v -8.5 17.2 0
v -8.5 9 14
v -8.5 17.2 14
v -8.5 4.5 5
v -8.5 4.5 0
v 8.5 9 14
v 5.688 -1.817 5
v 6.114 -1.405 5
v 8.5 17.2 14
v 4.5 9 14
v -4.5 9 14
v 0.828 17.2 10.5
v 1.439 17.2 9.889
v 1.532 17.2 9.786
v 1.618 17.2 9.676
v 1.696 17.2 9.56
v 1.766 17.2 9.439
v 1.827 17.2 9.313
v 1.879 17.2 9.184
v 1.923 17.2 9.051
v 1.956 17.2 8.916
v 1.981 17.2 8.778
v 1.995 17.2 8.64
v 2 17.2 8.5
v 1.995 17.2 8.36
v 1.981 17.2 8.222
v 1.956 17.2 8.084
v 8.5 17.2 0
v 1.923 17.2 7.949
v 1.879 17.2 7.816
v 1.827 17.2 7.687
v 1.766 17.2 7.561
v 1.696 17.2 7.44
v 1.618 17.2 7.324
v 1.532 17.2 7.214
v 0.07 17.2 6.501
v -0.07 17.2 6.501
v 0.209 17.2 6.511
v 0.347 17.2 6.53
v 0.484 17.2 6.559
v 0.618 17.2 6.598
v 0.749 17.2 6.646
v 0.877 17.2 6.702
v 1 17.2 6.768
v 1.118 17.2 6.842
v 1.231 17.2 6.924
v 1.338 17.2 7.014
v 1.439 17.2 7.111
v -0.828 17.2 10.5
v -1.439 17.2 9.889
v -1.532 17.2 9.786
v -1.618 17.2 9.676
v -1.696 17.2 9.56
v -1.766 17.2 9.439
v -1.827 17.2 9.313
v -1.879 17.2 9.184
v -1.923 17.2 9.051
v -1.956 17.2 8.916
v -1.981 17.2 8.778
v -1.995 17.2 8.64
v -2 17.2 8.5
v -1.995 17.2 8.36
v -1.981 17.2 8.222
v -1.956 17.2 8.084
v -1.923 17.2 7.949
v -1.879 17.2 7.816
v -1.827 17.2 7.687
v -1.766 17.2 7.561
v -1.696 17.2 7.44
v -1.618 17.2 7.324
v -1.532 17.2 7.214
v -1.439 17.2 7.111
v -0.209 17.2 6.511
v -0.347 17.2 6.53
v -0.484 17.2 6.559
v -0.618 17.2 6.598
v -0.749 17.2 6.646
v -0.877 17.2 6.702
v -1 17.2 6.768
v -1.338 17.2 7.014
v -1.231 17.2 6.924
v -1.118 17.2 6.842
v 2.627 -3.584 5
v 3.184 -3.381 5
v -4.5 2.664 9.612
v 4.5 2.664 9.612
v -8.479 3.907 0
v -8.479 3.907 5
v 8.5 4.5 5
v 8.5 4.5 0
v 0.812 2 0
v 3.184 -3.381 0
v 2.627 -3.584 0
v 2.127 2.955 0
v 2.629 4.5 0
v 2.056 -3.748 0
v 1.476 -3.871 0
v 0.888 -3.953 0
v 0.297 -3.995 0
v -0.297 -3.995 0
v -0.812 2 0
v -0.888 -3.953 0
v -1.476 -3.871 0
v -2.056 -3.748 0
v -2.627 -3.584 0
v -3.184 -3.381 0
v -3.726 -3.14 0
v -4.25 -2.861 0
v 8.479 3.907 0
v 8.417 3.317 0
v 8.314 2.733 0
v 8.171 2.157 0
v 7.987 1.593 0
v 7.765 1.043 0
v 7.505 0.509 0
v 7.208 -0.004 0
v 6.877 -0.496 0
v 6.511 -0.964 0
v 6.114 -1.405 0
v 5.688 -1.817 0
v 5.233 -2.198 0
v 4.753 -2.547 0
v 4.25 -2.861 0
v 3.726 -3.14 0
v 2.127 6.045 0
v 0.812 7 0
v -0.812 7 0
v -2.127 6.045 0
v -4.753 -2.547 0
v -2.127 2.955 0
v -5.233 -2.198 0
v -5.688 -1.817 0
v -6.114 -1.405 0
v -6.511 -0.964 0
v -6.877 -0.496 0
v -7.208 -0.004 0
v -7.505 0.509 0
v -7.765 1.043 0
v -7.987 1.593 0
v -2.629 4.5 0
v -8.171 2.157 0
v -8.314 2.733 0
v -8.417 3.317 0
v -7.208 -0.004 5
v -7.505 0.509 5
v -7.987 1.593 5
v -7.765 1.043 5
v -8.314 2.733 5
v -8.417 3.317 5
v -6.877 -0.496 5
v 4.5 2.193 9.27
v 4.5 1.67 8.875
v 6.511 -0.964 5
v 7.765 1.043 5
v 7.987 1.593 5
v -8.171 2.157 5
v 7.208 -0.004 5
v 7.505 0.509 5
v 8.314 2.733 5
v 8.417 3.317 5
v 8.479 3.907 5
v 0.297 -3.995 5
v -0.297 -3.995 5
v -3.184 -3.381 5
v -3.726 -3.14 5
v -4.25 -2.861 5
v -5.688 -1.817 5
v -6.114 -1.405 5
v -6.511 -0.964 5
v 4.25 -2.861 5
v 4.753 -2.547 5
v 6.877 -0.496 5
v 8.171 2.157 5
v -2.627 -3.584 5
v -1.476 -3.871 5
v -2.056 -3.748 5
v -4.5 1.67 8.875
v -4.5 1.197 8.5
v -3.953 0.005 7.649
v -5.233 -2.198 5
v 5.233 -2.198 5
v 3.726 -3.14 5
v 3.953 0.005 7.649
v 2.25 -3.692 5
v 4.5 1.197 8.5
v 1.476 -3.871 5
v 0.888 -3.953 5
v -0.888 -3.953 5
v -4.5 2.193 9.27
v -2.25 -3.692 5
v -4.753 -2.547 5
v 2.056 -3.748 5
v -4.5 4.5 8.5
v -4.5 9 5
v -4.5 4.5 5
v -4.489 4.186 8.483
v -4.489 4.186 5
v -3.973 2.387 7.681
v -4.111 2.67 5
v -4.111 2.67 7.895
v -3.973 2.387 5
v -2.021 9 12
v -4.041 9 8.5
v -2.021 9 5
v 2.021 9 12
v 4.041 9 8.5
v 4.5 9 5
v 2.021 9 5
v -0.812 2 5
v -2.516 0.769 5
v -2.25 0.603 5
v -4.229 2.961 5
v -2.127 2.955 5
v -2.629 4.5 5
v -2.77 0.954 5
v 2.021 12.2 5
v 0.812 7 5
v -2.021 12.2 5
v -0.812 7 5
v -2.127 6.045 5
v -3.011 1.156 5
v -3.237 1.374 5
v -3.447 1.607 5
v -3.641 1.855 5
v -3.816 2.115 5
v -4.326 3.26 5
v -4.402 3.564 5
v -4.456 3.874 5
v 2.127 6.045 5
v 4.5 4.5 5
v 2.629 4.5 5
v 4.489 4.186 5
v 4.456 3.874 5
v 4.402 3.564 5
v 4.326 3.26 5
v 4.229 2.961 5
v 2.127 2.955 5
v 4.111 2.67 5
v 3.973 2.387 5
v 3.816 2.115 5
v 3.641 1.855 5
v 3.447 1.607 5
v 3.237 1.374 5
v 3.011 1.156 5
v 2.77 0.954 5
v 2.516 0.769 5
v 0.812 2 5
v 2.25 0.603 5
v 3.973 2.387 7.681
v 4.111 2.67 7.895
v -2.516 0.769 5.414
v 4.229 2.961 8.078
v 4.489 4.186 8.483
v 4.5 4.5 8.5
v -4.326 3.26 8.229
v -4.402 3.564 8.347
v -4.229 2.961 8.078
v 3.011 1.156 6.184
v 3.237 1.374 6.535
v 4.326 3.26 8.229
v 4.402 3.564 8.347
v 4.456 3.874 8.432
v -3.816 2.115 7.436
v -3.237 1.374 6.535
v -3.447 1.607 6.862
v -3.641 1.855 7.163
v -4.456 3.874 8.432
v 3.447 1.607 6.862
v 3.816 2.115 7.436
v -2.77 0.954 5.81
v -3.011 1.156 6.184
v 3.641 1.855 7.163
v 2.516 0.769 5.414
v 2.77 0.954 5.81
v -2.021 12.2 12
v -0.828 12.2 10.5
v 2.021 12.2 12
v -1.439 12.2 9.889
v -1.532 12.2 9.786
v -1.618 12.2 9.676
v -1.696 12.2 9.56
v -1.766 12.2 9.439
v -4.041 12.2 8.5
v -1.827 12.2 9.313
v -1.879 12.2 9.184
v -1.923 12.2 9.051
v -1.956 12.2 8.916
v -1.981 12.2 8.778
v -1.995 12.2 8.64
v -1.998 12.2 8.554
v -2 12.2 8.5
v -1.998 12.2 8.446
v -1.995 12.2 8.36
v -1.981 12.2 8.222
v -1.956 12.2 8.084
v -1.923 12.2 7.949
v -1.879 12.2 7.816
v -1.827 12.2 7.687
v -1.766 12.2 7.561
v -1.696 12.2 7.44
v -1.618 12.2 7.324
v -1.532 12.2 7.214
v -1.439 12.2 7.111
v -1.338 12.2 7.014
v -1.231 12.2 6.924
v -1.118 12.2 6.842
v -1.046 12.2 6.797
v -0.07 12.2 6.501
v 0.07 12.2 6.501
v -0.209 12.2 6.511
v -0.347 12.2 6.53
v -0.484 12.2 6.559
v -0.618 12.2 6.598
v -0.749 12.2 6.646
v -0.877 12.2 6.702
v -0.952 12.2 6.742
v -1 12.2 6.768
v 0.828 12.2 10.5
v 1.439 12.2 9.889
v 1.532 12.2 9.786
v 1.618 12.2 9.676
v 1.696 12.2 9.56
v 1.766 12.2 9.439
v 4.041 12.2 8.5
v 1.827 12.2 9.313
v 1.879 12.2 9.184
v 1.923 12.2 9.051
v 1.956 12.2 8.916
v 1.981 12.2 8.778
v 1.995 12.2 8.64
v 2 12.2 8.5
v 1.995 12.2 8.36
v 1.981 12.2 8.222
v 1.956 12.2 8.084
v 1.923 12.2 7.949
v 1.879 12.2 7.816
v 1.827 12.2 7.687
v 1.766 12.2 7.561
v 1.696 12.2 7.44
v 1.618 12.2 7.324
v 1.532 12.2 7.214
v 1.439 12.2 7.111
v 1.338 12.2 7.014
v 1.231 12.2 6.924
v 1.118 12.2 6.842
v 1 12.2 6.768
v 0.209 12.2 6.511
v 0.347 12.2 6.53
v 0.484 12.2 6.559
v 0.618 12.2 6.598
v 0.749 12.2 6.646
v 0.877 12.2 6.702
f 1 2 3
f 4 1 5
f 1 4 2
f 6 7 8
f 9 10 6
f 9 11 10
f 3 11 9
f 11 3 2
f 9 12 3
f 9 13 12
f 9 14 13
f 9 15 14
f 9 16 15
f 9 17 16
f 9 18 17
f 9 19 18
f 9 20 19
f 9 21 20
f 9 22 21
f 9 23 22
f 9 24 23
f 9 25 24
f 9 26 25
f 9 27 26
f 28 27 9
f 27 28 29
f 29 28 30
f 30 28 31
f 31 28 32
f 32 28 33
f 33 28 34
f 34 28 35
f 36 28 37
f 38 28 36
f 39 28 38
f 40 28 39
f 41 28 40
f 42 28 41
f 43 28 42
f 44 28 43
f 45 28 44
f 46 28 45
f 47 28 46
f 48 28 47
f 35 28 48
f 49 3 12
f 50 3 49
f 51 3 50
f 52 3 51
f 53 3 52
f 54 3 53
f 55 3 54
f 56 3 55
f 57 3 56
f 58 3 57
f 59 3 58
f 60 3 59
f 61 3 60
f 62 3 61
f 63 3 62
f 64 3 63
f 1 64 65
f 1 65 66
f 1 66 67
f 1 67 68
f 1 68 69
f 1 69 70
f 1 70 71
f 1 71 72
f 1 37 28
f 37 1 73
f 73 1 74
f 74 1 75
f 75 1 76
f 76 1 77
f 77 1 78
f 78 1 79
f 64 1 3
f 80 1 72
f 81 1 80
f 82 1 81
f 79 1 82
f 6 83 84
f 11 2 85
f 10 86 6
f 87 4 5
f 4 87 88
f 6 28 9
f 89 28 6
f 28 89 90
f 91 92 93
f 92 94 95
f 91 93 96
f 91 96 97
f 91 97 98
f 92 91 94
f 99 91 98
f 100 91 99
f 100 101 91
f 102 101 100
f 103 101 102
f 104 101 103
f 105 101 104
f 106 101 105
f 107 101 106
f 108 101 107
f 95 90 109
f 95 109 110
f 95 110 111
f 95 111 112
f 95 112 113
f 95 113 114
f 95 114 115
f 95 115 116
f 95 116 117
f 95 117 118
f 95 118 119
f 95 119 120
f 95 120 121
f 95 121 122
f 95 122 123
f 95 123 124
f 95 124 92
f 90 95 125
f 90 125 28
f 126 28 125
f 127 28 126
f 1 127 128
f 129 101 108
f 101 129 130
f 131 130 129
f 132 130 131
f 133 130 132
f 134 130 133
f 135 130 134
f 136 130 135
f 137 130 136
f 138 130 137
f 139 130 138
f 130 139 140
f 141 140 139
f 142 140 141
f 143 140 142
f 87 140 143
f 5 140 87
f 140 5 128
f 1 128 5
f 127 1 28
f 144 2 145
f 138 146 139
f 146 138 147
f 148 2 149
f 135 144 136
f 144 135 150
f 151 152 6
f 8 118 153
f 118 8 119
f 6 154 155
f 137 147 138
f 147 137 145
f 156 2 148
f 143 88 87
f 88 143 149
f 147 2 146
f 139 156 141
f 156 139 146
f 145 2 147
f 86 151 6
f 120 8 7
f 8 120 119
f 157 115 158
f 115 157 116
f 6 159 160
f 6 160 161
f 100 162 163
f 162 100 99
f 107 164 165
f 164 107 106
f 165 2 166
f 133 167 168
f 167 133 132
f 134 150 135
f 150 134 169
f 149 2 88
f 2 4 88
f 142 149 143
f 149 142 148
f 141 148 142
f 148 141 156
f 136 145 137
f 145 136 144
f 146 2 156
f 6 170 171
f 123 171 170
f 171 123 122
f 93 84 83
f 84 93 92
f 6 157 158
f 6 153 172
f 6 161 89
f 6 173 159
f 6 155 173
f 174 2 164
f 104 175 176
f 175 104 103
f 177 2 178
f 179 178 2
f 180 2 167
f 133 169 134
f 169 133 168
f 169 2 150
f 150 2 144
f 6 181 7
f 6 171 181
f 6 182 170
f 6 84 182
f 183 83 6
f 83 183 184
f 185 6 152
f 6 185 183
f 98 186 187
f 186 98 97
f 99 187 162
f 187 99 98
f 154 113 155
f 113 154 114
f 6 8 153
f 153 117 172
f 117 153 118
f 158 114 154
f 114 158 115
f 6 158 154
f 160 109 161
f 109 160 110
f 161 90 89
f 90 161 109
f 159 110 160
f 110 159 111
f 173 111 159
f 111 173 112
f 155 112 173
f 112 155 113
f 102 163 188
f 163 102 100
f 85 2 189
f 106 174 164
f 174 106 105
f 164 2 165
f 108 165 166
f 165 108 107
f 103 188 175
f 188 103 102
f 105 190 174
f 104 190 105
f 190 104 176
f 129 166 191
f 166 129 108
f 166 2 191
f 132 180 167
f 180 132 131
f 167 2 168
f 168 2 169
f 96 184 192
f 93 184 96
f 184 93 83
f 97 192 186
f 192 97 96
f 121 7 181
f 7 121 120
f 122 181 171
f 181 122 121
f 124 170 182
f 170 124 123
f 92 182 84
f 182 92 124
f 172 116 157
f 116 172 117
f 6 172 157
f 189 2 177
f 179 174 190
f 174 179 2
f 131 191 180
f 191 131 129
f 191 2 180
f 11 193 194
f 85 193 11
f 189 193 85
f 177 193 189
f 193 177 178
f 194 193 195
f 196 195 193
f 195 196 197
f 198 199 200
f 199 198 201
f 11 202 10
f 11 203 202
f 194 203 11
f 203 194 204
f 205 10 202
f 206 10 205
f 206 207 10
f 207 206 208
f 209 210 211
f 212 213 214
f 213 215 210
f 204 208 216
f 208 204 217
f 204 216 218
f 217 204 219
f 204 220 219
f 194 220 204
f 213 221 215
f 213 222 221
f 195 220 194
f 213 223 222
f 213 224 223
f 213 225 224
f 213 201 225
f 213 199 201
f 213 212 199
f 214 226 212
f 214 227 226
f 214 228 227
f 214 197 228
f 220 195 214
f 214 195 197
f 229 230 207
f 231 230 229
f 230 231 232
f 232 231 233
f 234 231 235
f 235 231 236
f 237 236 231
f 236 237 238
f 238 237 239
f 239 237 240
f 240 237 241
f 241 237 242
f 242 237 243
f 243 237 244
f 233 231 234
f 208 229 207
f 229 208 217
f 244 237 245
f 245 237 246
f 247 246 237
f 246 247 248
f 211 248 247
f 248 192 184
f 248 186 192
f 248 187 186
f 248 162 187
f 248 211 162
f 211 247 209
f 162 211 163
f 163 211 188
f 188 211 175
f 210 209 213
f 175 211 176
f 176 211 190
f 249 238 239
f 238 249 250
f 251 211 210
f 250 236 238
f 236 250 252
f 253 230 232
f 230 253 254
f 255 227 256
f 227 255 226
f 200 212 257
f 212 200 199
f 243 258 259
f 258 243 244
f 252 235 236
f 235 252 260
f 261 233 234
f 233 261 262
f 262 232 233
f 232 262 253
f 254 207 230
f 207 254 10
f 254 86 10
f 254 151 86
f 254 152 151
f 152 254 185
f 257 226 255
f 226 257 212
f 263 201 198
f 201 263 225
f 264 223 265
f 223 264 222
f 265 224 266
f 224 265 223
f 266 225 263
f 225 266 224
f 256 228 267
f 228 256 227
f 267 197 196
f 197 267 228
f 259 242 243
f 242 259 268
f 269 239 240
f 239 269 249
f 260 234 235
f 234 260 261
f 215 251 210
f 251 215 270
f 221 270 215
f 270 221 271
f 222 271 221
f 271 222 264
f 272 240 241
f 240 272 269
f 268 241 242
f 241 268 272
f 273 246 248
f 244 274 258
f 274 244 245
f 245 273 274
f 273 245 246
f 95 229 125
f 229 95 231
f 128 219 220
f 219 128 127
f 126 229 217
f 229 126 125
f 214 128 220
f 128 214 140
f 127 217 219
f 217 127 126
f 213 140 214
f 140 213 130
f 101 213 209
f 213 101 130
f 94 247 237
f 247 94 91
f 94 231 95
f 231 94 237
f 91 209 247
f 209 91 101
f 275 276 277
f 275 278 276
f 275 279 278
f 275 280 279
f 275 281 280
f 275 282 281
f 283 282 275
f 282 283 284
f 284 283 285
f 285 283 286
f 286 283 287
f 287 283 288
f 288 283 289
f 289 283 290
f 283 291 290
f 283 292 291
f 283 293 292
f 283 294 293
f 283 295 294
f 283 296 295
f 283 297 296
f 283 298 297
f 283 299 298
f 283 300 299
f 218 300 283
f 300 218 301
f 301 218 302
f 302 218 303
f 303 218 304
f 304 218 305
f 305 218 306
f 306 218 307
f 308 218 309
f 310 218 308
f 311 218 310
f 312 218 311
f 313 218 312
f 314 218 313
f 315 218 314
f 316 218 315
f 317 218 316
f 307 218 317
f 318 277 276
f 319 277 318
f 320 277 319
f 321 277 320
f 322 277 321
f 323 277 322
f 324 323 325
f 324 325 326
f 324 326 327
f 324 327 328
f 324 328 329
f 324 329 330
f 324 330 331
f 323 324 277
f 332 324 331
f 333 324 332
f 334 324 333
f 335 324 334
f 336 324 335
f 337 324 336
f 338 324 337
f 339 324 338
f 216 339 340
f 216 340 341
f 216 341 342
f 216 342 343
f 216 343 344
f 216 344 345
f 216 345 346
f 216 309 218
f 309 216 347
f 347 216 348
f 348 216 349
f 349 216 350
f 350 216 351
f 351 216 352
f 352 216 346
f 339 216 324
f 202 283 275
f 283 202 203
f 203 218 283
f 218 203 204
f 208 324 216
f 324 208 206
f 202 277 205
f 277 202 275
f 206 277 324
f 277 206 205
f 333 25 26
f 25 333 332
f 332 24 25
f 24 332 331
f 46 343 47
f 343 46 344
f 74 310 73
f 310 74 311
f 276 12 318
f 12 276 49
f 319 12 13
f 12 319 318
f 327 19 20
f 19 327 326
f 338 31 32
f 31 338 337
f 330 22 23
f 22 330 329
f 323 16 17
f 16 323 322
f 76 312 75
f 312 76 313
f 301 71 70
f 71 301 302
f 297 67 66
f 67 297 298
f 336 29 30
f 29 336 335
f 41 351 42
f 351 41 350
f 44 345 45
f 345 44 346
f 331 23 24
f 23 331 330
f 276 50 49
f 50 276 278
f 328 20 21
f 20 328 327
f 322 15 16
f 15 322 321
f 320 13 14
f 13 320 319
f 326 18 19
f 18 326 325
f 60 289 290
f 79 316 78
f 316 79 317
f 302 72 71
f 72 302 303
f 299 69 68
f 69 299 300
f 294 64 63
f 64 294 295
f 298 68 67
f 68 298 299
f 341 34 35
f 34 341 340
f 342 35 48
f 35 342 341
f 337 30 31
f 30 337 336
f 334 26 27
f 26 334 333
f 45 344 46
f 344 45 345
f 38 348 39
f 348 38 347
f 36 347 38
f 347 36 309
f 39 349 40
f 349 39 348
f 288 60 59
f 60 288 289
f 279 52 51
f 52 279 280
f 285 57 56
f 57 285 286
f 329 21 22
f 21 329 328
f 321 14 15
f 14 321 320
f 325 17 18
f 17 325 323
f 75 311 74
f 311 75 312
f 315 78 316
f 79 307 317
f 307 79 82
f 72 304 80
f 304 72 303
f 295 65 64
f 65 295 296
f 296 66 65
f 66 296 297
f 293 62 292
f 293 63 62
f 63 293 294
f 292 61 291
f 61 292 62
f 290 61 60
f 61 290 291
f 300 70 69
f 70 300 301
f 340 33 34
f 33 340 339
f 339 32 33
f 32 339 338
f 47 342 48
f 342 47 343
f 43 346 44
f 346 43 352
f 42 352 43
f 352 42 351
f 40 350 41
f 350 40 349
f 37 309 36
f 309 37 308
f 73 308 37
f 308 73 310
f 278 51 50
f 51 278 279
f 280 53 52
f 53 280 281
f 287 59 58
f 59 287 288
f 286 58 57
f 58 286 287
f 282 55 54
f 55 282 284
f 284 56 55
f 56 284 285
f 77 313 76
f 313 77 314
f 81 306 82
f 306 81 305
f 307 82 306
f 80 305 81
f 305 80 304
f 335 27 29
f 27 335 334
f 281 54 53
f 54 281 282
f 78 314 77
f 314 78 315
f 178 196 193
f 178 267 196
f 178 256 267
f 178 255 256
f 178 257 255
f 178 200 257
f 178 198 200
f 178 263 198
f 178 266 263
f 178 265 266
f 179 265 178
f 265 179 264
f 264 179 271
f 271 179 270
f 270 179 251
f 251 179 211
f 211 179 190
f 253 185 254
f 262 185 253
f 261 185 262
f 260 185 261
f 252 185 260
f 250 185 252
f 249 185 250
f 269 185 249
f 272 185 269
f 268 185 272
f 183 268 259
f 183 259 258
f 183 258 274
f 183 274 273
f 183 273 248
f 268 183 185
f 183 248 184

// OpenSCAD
// file: nutShape.scad
// a nut shape that takes height and width across flats as input.

nutShape(6, 3);

module nutShape(w, h)
{
    rotate_extrude($fn = 6)
        square([((w / 2) / (cos(30))), h], center = false);
}
// file: trunctear.scad
//A module for truncated tear drops.

trunctear(1, 0.5, $fn = 90);

module trunctear(hei, radian, cent = false)
{
    linear_extrude(height = hei, center = cent)
        hull()
        {
            circle(r = radian);
            translate([0, radian/2])
                square([2*(radian*(2*cos(45)-1)), radian], center = true);
        }
}
// file: polyhole.scad
// The Cylinder is dead! Long live the Cylinder!
// A module for a polyhole by radius, based on Nophead's work.

module polyhole(h, r, cent = false)
{
    n = max(round(4 * r), 3);
    cylinder(h = h, r = r / cos(180 / n), $fn = n, center = cent);
}
// main file
// Uses 50mm m4 tap bolts

use<polyhole.scad>
use<trunctear.scad>
use<nutShape.scad>

Tensioner();

module Tensioner()
{
    difference()
    {
        union()
        {
            hull()
            {
                translate([0, 9+(3.2+5)/2, (5+7+2)/2])
                    cube([9+4+4, 3.2+5, 5+7+2], center = true);
                translate([0, 9/2, 0])
                    cylinder(h = 5, r = 9/2+4, $fn = 90);
            }
        }
        hull()
        {
            translate([0, 8, 5+(7+4+2)/2])
                cube([9, 2, 7+4+2], center = true);
            translate([0, 9/2, 5])
                cylinder(h = 7+2, r = 9/2, $fn = 90);
        }
        translate([0, 9/2, 0])
            polyhole(5, 5/2);
        translate([0, 9+3.2, 7/2+5])
            rotate([90, 0, 0])
                nutShape(7, 3.2);
        translate([0, 9, 7/2+5])
            rotate([90, 0, 180])
                trunctear(3.2+5, 2, $fn = 90);
        hull()
        {
            translate([0, 9/2-2, 7/2+5+10])
                cube([9, 9+4, 20], center = true);
            translate([0, 9/2-2, 5+1])
                cube([9/2, 9+4, 2], center = true);
        }
    }
}
